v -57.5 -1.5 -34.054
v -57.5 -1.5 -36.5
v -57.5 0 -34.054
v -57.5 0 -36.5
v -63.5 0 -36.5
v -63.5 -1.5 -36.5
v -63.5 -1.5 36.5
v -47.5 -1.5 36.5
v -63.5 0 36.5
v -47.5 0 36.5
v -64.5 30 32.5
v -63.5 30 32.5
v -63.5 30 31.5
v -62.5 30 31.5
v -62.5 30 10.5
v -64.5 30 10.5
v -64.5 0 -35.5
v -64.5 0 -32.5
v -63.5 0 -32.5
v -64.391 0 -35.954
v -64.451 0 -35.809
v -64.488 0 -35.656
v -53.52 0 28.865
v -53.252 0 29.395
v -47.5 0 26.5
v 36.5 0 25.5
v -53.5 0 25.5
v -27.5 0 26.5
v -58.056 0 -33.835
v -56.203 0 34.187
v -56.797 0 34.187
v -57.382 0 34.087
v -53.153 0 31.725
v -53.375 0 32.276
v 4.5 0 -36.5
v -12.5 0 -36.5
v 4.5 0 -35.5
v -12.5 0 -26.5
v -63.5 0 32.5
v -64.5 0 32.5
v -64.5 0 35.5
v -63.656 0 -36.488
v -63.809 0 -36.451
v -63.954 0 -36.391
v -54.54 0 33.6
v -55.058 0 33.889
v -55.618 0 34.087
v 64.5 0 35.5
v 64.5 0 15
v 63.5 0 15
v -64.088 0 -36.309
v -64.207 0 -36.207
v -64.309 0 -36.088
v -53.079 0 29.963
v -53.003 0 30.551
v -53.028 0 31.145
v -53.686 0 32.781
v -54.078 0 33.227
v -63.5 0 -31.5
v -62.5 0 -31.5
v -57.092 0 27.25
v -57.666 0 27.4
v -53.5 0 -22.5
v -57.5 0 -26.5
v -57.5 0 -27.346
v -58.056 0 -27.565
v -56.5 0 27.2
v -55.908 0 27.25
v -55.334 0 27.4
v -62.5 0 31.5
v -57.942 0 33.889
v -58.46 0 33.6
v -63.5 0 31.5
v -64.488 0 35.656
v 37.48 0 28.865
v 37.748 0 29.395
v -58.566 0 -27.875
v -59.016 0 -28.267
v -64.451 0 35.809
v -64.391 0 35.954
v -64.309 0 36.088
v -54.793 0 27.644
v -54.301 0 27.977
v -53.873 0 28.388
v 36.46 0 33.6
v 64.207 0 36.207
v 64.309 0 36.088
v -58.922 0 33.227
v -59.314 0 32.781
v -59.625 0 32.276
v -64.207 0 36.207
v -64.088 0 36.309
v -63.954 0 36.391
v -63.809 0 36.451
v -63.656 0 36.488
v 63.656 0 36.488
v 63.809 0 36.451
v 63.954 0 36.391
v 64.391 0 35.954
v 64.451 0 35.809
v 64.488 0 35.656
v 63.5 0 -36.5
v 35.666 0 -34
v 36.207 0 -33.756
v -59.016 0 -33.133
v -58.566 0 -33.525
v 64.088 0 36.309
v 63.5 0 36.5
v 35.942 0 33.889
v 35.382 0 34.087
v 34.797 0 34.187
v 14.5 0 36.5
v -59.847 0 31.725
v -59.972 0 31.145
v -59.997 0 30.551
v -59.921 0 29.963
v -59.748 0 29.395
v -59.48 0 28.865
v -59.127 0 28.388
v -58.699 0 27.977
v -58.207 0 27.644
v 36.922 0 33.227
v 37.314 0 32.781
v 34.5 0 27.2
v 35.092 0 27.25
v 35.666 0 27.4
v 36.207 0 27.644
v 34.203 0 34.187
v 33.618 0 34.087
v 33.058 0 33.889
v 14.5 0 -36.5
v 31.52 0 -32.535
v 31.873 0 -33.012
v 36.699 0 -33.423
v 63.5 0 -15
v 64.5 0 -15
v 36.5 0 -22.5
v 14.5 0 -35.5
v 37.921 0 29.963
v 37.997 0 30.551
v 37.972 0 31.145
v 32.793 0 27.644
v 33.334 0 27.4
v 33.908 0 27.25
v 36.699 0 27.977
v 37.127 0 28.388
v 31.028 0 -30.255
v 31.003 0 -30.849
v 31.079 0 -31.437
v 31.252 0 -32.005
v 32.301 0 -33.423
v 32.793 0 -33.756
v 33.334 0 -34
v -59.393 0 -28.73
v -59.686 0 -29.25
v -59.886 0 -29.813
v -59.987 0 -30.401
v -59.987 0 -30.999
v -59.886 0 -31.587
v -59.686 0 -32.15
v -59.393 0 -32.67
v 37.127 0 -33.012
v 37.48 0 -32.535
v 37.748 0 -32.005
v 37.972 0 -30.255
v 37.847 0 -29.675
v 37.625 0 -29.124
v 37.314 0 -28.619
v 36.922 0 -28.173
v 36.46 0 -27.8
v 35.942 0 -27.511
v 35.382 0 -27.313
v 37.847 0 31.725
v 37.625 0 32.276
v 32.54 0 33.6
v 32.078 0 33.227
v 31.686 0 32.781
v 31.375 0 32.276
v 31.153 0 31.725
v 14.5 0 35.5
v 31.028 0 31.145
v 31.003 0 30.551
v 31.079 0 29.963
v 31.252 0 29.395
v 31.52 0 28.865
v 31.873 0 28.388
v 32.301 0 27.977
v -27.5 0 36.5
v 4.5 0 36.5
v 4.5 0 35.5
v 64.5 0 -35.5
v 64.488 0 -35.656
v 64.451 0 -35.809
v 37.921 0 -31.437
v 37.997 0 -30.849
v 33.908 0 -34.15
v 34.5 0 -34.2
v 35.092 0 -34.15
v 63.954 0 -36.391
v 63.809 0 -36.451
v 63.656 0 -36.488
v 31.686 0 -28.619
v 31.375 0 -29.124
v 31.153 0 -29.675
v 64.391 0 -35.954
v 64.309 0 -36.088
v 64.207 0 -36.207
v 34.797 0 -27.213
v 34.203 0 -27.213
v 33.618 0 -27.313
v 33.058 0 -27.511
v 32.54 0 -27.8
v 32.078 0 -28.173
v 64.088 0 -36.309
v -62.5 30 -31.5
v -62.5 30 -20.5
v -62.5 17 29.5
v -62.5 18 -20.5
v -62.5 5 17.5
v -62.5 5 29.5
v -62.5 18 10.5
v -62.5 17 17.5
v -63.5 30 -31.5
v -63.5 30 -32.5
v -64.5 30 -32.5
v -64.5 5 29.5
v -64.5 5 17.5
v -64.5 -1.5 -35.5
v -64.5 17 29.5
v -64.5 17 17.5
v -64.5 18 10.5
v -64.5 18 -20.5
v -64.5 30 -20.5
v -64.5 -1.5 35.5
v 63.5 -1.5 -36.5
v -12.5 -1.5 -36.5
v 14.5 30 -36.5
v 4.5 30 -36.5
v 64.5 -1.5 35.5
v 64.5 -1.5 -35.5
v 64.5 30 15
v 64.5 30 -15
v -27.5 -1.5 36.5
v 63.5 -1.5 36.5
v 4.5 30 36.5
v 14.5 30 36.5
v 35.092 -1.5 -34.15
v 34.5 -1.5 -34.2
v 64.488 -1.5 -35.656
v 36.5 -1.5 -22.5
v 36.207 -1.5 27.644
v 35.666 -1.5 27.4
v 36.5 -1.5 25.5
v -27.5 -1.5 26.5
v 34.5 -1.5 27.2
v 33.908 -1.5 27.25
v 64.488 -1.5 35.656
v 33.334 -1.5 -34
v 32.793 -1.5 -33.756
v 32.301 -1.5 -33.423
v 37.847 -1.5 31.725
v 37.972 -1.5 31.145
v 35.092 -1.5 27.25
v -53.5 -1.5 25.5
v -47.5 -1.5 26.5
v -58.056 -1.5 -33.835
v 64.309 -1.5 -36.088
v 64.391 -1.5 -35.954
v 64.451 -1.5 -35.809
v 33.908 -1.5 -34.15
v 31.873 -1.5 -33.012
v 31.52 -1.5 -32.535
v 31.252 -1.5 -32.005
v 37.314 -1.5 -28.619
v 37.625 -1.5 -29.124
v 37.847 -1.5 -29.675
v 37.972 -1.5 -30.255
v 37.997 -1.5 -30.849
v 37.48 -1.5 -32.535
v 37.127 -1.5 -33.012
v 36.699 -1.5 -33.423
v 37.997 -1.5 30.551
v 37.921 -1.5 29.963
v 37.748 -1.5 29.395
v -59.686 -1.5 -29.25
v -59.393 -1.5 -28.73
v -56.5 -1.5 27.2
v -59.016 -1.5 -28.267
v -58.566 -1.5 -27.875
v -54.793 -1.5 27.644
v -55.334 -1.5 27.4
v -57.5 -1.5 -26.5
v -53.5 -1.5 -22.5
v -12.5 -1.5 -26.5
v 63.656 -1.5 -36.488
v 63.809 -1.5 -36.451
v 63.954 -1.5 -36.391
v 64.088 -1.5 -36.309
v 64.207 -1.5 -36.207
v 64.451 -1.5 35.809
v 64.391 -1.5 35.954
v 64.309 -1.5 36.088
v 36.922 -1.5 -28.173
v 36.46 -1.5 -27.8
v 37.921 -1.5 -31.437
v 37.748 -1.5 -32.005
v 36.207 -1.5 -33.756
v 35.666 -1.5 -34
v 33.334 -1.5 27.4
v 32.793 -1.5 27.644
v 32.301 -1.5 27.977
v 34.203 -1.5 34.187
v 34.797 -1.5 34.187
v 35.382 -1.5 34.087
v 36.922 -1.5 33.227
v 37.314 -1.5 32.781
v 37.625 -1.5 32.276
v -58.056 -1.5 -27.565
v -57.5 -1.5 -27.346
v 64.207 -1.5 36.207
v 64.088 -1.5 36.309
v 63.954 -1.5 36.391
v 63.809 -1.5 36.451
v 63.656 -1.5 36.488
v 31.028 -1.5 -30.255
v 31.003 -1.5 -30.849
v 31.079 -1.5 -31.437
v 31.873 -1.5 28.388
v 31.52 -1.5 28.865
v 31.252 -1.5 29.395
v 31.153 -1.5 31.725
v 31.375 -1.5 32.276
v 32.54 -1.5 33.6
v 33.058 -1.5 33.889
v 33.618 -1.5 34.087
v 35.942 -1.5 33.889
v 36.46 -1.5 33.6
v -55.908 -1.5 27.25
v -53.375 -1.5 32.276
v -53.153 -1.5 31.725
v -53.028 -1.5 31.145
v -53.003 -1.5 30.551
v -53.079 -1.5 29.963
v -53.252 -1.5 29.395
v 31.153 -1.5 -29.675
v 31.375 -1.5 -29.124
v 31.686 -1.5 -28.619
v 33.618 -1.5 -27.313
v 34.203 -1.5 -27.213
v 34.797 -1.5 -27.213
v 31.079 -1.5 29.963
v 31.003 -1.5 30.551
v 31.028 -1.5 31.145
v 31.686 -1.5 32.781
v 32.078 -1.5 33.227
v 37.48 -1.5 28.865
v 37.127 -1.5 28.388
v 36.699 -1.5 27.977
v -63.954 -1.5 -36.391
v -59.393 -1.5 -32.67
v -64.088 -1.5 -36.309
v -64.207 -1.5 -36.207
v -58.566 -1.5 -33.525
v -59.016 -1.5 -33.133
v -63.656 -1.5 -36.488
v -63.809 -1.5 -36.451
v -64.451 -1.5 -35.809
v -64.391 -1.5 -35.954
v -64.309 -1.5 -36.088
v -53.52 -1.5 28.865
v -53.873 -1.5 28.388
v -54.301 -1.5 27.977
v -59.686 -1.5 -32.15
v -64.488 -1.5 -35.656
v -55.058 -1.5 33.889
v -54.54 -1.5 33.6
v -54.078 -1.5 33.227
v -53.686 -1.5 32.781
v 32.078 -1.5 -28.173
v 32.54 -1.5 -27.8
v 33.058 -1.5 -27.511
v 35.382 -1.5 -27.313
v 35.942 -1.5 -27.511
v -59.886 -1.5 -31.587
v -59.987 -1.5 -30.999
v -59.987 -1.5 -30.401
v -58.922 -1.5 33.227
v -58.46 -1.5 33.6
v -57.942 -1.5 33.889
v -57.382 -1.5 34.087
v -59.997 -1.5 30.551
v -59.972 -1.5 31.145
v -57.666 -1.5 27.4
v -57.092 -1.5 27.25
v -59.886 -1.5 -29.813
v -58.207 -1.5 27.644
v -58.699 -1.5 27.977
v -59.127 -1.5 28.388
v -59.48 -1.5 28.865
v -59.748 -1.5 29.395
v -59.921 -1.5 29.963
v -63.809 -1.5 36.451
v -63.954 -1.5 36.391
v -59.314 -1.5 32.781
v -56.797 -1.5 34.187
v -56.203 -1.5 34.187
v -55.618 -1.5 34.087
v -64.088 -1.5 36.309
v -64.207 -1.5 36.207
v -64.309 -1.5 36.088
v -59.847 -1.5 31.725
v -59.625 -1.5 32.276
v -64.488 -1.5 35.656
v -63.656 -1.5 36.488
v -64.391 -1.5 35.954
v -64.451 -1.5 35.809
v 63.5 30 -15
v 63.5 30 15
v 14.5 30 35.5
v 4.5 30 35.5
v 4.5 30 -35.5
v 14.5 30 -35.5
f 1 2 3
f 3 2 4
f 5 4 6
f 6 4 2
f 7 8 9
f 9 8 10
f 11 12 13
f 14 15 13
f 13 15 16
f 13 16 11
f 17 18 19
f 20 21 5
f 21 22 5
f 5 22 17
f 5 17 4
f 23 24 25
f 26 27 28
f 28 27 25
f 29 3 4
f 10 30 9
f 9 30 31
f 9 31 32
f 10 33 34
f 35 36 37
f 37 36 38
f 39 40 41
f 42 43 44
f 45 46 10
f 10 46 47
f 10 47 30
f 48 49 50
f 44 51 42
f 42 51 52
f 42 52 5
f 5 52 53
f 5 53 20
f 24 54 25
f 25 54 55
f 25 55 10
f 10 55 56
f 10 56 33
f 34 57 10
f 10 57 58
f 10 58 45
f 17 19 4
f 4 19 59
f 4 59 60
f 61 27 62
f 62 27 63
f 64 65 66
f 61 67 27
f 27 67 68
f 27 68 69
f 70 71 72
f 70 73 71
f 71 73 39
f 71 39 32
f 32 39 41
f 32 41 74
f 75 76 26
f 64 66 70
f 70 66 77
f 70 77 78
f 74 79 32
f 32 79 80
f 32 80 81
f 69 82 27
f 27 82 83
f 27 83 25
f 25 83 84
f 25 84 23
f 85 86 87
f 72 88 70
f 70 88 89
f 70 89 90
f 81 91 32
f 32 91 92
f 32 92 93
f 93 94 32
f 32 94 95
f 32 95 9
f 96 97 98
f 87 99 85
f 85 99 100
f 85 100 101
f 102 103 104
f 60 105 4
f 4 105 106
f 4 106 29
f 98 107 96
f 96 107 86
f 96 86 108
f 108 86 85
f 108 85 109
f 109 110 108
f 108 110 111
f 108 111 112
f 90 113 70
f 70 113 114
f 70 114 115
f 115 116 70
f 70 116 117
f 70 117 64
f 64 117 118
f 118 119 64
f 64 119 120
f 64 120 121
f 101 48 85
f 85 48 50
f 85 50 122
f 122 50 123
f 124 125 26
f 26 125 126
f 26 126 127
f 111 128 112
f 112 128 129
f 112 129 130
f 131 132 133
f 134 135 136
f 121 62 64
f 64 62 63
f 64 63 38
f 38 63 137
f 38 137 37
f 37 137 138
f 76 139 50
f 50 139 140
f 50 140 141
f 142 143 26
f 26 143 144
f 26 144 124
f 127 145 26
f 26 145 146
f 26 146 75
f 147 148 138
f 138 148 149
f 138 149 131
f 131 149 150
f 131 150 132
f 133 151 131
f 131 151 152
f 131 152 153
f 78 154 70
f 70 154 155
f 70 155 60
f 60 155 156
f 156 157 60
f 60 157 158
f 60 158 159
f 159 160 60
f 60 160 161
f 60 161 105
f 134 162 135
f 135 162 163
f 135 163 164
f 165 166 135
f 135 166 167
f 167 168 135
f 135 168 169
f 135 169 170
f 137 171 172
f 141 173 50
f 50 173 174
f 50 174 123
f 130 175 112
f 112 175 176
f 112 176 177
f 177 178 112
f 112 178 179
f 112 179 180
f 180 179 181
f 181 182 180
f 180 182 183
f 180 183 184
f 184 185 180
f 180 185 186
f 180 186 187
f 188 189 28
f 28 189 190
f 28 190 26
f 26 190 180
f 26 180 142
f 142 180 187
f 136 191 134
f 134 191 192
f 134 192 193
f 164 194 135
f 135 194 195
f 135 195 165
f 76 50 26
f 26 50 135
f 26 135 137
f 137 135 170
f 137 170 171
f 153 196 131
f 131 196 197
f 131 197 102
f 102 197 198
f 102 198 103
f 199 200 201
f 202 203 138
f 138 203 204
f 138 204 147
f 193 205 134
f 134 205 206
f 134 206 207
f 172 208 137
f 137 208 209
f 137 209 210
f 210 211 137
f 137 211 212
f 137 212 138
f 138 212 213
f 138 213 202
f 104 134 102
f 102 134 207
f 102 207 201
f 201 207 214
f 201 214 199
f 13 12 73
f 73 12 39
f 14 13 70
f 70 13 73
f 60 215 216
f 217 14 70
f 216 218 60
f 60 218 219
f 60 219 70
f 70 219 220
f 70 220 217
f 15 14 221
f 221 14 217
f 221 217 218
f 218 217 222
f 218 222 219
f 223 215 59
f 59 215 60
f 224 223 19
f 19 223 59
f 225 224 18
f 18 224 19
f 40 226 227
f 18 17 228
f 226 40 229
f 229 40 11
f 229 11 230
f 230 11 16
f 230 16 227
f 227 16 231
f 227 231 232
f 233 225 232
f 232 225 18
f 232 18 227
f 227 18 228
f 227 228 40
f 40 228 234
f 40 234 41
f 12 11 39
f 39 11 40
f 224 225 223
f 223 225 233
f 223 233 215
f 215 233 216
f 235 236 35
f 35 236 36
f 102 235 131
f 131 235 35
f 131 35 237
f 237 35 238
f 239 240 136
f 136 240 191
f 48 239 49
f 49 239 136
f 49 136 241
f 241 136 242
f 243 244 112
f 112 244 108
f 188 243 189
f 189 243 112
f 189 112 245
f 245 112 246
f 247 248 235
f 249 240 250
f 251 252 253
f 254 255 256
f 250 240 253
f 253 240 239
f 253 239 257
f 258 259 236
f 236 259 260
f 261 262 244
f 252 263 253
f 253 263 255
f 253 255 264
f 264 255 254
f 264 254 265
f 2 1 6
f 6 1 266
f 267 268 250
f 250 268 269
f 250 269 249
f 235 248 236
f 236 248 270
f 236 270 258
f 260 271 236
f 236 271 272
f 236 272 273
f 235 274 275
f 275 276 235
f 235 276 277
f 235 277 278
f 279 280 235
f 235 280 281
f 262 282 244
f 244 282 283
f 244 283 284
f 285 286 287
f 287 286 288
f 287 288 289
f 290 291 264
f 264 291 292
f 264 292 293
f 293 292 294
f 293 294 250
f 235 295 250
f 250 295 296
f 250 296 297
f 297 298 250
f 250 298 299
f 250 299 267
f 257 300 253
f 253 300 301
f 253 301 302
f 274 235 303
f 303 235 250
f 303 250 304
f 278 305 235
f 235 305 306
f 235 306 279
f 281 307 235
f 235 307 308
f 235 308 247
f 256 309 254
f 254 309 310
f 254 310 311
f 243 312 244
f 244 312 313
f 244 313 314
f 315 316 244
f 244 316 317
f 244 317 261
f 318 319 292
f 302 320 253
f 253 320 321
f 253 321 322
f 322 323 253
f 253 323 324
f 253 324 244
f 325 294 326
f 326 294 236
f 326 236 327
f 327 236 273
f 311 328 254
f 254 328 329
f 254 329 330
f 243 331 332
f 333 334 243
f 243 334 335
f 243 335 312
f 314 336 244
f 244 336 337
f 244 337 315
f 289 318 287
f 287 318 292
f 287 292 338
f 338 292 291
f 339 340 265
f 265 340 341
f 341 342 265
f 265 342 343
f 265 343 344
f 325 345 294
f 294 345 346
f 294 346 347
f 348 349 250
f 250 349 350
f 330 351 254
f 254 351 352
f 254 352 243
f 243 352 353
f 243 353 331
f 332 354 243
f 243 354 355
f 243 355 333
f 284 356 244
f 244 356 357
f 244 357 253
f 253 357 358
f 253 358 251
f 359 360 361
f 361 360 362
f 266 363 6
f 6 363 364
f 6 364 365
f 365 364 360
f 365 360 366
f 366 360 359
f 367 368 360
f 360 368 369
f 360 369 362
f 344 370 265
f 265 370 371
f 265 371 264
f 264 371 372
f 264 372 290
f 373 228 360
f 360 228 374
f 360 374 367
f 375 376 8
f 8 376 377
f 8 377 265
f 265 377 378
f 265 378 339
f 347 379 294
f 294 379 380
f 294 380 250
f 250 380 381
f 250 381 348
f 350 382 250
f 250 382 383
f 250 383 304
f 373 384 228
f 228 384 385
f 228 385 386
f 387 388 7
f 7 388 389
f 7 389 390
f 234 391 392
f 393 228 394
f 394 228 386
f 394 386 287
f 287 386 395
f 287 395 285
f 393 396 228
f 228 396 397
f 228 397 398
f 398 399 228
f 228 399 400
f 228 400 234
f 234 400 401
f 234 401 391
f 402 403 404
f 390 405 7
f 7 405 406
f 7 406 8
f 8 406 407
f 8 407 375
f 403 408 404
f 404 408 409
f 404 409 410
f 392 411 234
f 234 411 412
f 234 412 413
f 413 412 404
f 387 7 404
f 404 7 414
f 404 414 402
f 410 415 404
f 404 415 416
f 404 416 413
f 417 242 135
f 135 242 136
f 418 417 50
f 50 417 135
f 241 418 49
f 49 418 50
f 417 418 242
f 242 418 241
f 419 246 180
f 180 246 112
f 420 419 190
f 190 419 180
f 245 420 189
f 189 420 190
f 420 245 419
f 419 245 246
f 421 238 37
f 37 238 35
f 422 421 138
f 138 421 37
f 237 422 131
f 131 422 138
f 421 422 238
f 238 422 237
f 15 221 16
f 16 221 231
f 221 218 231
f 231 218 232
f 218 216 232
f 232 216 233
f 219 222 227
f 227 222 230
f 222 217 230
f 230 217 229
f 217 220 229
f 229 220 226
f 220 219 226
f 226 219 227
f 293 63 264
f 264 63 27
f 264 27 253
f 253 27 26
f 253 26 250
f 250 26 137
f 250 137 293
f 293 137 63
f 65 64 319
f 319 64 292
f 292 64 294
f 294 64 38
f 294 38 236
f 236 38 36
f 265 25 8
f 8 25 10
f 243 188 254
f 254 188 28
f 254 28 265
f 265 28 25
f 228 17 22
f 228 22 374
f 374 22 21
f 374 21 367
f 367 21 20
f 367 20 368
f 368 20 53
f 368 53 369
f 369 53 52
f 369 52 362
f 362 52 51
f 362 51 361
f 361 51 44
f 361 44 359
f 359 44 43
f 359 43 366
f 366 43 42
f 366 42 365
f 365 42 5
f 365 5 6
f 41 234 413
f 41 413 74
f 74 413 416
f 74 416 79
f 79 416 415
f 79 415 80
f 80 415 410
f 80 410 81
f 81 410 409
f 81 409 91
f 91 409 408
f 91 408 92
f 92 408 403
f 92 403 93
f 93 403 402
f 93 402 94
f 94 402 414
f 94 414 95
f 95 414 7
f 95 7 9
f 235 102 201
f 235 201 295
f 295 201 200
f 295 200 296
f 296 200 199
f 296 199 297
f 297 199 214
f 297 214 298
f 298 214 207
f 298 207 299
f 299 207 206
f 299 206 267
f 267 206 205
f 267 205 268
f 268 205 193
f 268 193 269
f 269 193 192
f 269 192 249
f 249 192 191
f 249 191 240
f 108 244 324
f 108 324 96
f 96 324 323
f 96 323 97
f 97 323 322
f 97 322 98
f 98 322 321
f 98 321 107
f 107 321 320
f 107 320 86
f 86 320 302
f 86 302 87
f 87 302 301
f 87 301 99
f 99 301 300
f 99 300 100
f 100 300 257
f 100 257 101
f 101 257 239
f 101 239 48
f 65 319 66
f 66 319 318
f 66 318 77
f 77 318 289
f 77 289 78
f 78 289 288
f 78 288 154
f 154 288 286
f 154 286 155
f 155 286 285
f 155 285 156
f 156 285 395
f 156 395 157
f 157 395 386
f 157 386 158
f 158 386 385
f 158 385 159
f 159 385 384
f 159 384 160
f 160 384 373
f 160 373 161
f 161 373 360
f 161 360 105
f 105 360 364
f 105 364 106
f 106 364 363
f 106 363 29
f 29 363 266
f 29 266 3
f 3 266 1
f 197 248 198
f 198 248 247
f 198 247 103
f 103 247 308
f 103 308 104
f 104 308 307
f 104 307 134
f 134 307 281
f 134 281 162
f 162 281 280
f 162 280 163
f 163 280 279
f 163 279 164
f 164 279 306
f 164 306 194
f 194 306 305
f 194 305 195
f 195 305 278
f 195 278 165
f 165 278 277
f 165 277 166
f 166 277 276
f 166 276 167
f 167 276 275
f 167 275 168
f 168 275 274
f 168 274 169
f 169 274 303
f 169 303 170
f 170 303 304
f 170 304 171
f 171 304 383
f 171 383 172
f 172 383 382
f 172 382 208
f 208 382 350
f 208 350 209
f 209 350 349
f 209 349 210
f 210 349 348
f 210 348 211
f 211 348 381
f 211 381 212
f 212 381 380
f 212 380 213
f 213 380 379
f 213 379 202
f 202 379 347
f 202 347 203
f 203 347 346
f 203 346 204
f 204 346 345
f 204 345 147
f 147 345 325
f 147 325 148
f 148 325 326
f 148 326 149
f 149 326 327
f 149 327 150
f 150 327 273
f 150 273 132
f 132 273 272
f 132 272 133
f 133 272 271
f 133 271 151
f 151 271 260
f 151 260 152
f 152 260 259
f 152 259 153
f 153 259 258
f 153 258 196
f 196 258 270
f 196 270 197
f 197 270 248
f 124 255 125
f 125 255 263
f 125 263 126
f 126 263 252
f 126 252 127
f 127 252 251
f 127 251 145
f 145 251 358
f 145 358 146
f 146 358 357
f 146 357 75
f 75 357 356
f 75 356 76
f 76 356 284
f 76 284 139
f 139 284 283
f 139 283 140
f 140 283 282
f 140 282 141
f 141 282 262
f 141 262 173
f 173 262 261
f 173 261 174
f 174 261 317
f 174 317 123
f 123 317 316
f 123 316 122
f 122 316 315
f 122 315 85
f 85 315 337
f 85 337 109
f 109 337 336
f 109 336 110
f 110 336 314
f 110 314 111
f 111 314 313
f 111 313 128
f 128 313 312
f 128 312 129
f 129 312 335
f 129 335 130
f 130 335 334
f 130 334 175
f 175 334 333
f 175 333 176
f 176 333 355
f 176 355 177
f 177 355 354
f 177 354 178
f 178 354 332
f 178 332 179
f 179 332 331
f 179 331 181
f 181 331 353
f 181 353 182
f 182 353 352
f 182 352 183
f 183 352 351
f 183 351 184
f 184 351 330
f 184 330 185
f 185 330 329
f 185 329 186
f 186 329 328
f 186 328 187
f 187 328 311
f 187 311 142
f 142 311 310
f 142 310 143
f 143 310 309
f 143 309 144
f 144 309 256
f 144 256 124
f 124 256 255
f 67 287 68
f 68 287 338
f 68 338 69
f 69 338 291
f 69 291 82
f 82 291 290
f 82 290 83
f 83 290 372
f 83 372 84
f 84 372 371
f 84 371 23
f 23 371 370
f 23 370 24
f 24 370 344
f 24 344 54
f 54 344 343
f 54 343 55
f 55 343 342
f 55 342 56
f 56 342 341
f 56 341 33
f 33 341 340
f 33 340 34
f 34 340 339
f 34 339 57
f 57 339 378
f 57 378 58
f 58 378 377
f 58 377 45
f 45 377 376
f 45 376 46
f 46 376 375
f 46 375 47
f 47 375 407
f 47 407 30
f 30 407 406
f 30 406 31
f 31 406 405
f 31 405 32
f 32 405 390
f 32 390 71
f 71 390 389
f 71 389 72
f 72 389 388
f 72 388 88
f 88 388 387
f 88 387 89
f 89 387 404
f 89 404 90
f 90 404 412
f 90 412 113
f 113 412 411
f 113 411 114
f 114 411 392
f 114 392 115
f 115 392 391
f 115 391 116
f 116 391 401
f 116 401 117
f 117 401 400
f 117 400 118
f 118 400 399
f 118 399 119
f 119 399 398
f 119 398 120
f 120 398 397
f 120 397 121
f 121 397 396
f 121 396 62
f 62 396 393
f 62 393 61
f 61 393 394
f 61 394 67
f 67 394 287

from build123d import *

# Parameters (mm, degrees)
EXTRUDE_1_DEPTH     = 30
SKETCH_1_5_W        = 129
SKETCH_1_5_H        = 73
EXTRUDE_3_DEPTH     = 1.5
SKETCH_4_W          = 1
SKETCH_4_H          = 30
SKETCH_4_W_2        = 10
SKETCH_4_H_2        = 1
EXTRUDE_4_DEPTH     = 30
SKETCH_8_W          = 31
SKETCH_8_H          = 12
SKETCH_8_W_2        = 12
CUT_EXTRUDE_5_DEPTH = 2
SKETCH_6_W          = 90
SKETCH_6_H          = 48
SKETCH_6_W_2        = 20
SKETCH_6_H_2        = 10
SKETCH_6_W_3        = 45
CUT_EXTRUDE_6_DEPTH = 2
FILLET_1_R          = 1
FILLET_6_R          = 1
FILLET_7_R          = 1
SKETCH_10_R         = 3.5
CUT_EXTRUDE_7_DEPTH = 2


with BuildPart() as part:
    # 草图1 → 凸台-拉伸1 (new body)
    with BuildSketch(Plane(origin=(0, 0, 0), x_dir=(1, 0, 0), z_dir=(0, 1, 0))):
        Polygon((-63.5, 32.5), (-64.5, 32.5), (-64.5, -32.5), (-63.5, -32.5), (-63.5, -31.5), (-62.5, -31.5), (-62.5, 31.5), (-63.5, 31.5), align=None)
    extrude(amount=EXTRUDE_1_DEPTH)

    # 草图1<5> → 凸台-拉伸3 (add)
    with BuildSketch(Plane(origin=(0, 0, 0), x_dir=(1, 0, 0), z_dir=(0, 1, 0))):
        Rectangle(SKETCH_1_5_W, SKETCH_1_5_H)
    extrude(amount=-EXTRUDE_3_DEPTH)

    # 草图4 → 凸台-拉伸4 (add)
    with BuildSketch(Plane(origin=(0, 0, 0), x_dir=(1, 0, 0), z_dir=(0, 1, 0))):
        with Locations((64, 0)):
            Rectangle(SKETCH_4_W, SKETCH_4_H)
        with Locations((9.5, -36)):
            Rectangle(SKETCH_4_W_2, SKETCH_4_H_2)
        with Locations((9.5, 36)):
            Rectangle(SKETCH_4_W_2, SKETCH_4_H_2)
    extrude(amount=EXTRUDE_4_DEPTH)

    # 草图8 → 切除-拉伸5 (cut)
    with BuildSketch(Plane.ZY.offset(64.5)):
        with Locations((-5, 24)):
            Rectangle(SKETCH_8_W, SKETCH_8_H)
        with Locations((23.5, 11)):
            Rectangle(SKETCH_8_W_2, SKETCH_8_H)
    extrude(amount=-CUT_EXTRUDE_5_DEPTH, mode=Mode.SUBTRACT)

    # 草图6 → 切除-拉伸6 (cut)
    with BuildSketch(Plane.XZ.offset(1.5)):
        with Locations((-8.5, 1.5)):
            Rectangle(SKETCH_6_W, SKETCH_6_H)
        with Locations((-37.5, 31.5)):
            Rectangle(SKETCH_6_W_2, SKETCH_6_H_2)
        with Locations((-35, -31.5)):
            Rectangle(SKETCH_6_W_3, SKETCH_6_H_2)
    extrude(amount=-CUT_EXTRUDE_6_DEPTH, mode=Mode.SUBTRACT)

    # 圆角1
    fillet_1_edges = [part.edges().sort_by_distance(p)[0] for p in [
        (-64.5, -0.75, -36.5),
    ]]
    fillet(fillet_1_edges, radius=FILLET_1_R)

    # 圆角6
    fillet_6_edges = [part.edges().sort_by_distance(p)[0] for p in [
        (-64.5, -0.75, 36.5),
    ]]
    fillet(fillet_6_edges, radius=FILLET_6_R)

    # 圆角7
    fillet_7_edges = [part.edges().sort_by_distance(p)[0] for p in [
        (64.5, -0.75, -36.5),
        (64.5, -0.75, 36.5),
    ]]
    fillet(fillet_7_edges, radius=FILLET_7_R)

    # 草图10 → 切除-拉伸7 (cut)
    with BuildSketch(Plane(origin=(0, -1.5, 0), x_dir=(-1, 0, 0), z_dir=(0, -1, 0))):
        with Locations((-34.5, 30.7)):
            Circle(SKETCH_10_R)
        with Locations((-34.5, -30.7)):
            Circle(SKETCH_10_R)
        with Locations((56.5, -30.7)):
            Circle(SKETCH_10_R)
        with BuildLine():
            Line((57.5, 27.345898034), (57.5, 34.054101966))
            ThreePointArc((57.5, 34.054101966), (60, 30.7), (57.5, 27.345898034))
        make_face()
    extrude(amount=-CUT_EXTRUDE_7_DEPTH, mode=Mode.SUBTRACT)


solid = part.part
